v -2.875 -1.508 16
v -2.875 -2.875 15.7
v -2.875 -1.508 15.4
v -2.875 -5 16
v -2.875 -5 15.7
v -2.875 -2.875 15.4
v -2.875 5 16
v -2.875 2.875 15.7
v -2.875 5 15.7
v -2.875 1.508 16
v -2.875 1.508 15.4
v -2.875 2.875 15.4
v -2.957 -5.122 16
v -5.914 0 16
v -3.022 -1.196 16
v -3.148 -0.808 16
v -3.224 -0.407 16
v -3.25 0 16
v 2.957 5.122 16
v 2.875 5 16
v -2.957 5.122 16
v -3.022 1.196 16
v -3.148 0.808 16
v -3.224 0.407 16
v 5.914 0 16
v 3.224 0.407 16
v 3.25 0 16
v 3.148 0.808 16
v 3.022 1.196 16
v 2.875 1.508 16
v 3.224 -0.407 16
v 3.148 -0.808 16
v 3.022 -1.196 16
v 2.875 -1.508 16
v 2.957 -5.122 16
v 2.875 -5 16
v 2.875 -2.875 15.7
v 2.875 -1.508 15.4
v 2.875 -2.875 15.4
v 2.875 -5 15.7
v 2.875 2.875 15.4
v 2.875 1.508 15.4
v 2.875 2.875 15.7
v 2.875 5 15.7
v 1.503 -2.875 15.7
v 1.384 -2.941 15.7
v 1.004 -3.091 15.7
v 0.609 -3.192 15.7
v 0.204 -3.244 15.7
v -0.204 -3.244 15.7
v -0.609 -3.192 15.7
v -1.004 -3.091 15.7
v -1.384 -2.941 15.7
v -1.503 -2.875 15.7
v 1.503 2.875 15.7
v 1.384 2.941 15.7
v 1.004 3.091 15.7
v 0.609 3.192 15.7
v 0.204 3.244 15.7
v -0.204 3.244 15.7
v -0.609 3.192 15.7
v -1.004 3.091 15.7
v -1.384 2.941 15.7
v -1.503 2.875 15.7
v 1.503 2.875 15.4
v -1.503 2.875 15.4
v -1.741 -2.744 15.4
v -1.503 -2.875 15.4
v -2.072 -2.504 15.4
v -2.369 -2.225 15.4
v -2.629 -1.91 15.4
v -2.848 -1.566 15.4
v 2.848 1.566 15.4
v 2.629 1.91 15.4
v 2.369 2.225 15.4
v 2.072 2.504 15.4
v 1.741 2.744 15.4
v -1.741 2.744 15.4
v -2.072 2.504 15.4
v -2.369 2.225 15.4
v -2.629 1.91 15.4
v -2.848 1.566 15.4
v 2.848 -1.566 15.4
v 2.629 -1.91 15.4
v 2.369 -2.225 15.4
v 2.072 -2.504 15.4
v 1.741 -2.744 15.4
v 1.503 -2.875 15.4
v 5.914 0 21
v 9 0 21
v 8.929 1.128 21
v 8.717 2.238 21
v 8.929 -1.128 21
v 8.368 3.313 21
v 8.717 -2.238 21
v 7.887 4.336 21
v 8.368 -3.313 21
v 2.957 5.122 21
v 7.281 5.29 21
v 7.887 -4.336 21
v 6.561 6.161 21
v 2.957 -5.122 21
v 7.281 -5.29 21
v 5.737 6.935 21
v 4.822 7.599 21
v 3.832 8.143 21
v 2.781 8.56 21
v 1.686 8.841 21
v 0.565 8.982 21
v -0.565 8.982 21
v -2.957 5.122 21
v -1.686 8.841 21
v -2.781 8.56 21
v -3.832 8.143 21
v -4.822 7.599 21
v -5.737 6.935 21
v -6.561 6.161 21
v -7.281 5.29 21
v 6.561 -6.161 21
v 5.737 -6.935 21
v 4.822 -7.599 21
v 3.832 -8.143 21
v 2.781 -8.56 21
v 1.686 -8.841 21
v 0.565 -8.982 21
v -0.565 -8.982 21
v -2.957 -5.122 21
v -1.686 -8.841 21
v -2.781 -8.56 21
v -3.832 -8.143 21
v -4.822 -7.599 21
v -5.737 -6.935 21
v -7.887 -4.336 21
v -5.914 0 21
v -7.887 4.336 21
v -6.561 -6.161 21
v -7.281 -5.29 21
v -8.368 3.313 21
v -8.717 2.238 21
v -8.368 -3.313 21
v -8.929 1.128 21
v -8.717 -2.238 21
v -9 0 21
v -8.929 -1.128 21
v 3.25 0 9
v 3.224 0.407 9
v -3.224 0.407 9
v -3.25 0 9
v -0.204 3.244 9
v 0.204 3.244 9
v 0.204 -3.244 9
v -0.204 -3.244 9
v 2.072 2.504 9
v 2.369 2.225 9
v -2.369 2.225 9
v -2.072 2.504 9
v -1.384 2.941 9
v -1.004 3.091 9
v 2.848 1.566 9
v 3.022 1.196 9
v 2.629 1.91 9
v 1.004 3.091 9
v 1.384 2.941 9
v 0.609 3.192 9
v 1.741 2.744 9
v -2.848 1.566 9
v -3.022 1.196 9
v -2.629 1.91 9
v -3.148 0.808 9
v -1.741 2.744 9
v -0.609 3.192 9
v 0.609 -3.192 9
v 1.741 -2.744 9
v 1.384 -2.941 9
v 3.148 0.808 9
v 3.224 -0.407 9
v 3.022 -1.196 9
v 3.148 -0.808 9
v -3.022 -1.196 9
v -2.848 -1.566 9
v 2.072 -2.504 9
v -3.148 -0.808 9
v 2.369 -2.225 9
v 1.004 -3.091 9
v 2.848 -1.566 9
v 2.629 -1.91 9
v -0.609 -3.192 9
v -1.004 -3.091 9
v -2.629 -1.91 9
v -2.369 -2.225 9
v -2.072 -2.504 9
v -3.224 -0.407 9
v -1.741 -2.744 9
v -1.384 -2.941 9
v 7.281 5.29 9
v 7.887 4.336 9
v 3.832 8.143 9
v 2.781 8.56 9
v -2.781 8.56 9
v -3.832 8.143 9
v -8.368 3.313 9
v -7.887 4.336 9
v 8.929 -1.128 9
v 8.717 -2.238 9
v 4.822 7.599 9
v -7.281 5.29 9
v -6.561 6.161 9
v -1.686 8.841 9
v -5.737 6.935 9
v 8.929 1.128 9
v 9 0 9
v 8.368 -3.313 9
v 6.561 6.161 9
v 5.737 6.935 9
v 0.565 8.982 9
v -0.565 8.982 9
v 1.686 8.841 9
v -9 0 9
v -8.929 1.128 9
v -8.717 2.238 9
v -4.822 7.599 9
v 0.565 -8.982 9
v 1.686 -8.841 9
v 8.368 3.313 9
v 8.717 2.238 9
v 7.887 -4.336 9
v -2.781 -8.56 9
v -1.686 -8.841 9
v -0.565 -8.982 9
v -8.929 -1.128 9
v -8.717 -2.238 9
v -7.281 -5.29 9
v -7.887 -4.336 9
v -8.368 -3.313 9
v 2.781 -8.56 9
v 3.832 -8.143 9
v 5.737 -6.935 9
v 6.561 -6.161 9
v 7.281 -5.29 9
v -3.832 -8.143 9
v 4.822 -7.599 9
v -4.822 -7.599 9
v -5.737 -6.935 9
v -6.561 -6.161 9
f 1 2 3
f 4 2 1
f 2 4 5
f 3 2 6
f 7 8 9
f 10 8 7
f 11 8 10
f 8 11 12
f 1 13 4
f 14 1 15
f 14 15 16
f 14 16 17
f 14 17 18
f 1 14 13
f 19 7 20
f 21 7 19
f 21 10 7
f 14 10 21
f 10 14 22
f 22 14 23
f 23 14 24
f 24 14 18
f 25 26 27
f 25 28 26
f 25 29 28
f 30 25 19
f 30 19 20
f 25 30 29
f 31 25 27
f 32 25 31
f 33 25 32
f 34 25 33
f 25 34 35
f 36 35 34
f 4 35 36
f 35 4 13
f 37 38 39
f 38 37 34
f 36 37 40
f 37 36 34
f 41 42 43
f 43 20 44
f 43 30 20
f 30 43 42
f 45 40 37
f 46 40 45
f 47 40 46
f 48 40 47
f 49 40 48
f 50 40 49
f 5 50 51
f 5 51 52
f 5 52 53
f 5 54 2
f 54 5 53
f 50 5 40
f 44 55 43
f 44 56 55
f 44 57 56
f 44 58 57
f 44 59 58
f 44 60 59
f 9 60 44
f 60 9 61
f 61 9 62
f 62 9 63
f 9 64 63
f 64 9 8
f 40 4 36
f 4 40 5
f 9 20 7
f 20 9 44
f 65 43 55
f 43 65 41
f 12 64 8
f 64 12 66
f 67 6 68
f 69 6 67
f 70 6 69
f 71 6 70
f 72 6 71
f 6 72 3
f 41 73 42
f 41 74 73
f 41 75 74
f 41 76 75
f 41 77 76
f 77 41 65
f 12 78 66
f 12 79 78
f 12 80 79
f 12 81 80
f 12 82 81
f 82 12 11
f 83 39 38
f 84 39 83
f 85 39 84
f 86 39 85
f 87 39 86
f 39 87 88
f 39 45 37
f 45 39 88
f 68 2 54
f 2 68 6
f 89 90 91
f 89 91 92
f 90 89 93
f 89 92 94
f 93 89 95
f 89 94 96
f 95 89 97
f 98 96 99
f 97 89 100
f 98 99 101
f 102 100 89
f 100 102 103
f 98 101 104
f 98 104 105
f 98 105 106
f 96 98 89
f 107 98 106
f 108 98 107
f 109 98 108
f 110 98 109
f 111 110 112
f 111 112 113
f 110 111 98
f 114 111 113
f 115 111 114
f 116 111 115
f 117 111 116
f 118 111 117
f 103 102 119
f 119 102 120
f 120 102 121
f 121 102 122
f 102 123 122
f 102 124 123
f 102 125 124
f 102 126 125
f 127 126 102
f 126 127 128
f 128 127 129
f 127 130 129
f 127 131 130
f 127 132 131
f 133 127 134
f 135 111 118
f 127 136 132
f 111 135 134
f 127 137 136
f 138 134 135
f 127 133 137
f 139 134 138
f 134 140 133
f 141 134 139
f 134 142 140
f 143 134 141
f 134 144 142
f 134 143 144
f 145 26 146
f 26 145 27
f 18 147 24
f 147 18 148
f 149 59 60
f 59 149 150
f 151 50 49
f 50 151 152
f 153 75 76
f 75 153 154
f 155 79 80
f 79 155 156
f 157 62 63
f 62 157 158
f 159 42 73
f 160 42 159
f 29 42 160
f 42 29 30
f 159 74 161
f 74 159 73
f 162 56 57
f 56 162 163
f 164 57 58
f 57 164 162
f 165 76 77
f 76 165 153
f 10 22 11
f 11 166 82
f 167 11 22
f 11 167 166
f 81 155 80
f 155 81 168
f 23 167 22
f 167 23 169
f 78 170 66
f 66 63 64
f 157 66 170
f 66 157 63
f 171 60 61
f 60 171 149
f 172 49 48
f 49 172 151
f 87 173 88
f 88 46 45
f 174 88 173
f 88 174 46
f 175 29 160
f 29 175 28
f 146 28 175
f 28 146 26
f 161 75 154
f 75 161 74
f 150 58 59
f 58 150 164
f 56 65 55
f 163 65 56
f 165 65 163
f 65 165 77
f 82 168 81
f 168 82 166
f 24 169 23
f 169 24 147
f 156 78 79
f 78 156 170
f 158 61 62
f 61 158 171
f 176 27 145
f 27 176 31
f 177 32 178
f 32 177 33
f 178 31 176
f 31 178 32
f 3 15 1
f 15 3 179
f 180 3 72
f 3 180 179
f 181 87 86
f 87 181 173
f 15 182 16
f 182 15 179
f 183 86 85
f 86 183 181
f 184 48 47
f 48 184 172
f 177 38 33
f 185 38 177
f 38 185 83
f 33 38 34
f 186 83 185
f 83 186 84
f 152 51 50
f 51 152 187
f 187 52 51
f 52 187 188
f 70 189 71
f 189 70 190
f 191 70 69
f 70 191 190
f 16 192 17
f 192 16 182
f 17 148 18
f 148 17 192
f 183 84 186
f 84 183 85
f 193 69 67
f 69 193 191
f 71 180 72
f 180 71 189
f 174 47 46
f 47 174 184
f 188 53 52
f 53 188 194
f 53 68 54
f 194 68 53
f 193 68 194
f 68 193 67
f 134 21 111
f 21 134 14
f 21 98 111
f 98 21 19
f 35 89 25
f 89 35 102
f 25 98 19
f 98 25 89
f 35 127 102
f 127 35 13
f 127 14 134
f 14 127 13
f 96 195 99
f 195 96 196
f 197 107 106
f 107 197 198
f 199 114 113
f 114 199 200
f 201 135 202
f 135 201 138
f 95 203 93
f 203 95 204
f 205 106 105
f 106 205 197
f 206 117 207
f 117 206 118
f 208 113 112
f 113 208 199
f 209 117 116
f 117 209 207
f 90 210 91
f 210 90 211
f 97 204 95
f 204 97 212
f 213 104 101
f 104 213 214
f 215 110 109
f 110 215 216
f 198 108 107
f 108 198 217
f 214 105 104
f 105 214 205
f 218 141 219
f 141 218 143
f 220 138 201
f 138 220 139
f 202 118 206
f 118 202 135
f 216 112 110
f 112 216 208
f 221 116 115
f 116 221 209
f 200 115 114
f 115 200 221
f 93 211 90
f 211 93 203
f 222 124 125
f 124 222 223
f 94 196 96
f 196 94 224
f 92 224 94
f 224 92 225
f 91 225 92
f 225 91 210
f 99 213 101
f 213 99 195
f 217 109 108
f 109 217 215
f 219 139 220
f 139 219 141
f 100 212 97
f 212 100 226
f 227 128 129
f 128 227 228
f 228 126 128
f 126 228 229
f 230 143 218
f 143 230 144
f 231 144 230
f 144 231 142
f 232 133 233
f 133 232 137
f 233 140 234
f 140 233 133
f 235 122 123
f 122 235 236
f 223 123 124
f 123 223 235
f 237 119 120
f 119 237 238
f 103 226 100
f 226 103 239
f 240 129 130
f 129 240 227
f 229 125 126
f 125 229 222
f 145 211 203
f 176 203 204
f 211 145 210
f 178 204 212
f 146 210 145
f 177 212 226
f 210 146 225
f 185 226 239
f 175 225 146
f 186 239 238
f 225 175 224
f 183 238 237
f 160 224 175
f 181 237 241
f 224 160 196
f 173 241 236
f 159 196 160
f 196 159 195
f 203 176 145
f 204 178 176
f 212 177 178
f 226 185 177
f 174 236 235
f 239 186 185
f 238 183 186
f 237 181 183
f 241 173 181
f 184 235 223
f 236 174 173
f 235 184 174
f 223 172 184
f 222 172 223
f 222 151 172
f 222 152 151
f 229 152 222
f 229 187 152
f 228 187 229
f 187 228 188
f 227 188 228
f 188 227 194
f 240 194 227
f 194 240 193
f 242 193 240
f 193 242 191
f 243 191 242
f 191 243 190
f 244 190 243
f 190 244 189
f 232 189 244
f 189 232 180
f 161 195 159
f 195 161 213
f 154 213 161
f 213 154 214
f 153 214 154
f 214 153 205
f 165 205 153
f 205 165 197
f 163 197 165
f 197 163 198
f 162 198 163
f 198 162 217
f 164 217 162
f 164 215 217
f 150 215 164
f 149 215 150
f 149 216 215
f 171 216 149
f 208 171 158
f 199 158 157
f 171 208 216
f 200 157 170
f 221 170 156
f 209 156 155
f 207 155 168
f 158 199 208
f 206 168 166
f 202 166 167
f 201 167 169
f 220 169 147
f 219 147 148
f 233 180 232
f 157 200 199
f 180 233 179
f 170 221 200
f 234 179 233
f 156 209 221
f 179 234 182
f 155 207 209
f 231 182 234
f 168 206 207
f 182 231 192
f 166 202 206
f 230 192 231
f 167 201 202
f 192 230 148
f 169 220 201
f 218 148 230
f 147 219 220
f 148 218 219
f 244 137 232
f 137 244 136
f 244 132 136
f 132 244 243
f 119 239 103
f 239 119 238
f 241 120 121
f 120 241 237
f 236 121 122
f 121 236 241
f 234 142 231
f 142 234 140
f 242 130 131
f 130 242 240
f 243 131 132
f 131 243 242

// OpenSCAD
$fn = 50;


difference() {
	union() {
		translate(v = [0, 0, 9.0000000000]) {
			cylinder(h = 12, r = 9.0000000000);
		}
	}
	union() {
		translate(v = [0, 0, 21]) {
			rotate(a = [0, 0, 0]) {
				difference() {
					union() {
						#translate(v = [-2.8750000000, -5.0000000000, -5.3000000000]) {
							cube(size = [5.7500000000, 10, 0.3000000000]);
						}
						#translate(v = [-2.8750000000, -2.8750000000, -5.6000000000]) {
							cube(size = [5.7500000000, 5.7500000000, 0.3000000000]);
						}
						#translate(v = [-2.8750000000, -5.0000000000, 0]) {
							cube(size = [5.7500000000, 10, 0.3000000000]);
						}
						#translate(v = [-2.8750000000, -2.8750000000, 0.3000000000]) {
							cube(size = [5.7500000000, 5.7500000000, 0.3000000000]);
						}
						#translate(v = [0, 0, -100.0000000000]) {
							cylinder(h = 200, r = 3.2500000000);
						}
						translate(v = [0, 0, -5]) {
							#linear_extrude(height = 5) {
								polygon(points = [[5.9142500000, 0.0000000000], [2.9571250000, 5.1218907443], [-2.9571250000, 5.1218907443], [-5.9142500000, 0.0000000000], [-2.9571250000, -5.1218907443], [2.9571250000, -5.1218907443]]);
							}
						}
						#translate(v = [-2.8750000000, -5.0000000000, -5.3000000000]) {
							cube(size = [5.7500000000, 10, 0.3000000000]);
						}
						#translate(v = [-2.8750000000, -2.8750000000, -5.6000000000]) {
							cube(size = [5.7500000000, 5.7500000000, 0.3000000000]);
						}
						#translate(v = [-2.8750000000, -5.0000000000, 0]) {
							cube(size = [5.7500000000, 10, 0.3000000000]);
						}
						#translate(v = [-2.8750000000, -2.8750000000, 0.3000000000]) {
							cube(size = [5.7500000000, 5.7500000000, 0.3000000000]);
						}
						#translate(v = [0, 0, -100.0000000000]) {
							cylinder(h = 200, r = 3.2500000000);
						}
						#translate(v = [-2.8750000000, -5.0000000000, -5.3000000000]) {
							cube(size = [5.7500000000, 10, 0.3000000000]);
						}
						#translate(v = [-2.8750000000, -2.8750000000, -5.6000000000]) {
							cube(size = [5.7500000000, 5.7500000000, 0.3000000000]);
						}
						#translate(v = [-2.8750000000, -5.0000000000, 0]) {
							cube(size = [5.7500000000, 10, 0.3000000000]);
						}
						#translate(v = [-2.8750000000, -2.8750000000, 0.3000000000]) {
							cube(size = [5.7500000000, 5.7500000000, 0.3000000000]);
						}
						#translate(v = [0, 0, -100.0000000000]) {
							cylinder(h = 200, r = 3.2500000000);
						}
					}
					union();
				}
			}
		}
		#translate(v = [0, 0, -100.0000000000]) {
			cylinder(h = 200, r = 3.2500000000);
		}
	}
}
